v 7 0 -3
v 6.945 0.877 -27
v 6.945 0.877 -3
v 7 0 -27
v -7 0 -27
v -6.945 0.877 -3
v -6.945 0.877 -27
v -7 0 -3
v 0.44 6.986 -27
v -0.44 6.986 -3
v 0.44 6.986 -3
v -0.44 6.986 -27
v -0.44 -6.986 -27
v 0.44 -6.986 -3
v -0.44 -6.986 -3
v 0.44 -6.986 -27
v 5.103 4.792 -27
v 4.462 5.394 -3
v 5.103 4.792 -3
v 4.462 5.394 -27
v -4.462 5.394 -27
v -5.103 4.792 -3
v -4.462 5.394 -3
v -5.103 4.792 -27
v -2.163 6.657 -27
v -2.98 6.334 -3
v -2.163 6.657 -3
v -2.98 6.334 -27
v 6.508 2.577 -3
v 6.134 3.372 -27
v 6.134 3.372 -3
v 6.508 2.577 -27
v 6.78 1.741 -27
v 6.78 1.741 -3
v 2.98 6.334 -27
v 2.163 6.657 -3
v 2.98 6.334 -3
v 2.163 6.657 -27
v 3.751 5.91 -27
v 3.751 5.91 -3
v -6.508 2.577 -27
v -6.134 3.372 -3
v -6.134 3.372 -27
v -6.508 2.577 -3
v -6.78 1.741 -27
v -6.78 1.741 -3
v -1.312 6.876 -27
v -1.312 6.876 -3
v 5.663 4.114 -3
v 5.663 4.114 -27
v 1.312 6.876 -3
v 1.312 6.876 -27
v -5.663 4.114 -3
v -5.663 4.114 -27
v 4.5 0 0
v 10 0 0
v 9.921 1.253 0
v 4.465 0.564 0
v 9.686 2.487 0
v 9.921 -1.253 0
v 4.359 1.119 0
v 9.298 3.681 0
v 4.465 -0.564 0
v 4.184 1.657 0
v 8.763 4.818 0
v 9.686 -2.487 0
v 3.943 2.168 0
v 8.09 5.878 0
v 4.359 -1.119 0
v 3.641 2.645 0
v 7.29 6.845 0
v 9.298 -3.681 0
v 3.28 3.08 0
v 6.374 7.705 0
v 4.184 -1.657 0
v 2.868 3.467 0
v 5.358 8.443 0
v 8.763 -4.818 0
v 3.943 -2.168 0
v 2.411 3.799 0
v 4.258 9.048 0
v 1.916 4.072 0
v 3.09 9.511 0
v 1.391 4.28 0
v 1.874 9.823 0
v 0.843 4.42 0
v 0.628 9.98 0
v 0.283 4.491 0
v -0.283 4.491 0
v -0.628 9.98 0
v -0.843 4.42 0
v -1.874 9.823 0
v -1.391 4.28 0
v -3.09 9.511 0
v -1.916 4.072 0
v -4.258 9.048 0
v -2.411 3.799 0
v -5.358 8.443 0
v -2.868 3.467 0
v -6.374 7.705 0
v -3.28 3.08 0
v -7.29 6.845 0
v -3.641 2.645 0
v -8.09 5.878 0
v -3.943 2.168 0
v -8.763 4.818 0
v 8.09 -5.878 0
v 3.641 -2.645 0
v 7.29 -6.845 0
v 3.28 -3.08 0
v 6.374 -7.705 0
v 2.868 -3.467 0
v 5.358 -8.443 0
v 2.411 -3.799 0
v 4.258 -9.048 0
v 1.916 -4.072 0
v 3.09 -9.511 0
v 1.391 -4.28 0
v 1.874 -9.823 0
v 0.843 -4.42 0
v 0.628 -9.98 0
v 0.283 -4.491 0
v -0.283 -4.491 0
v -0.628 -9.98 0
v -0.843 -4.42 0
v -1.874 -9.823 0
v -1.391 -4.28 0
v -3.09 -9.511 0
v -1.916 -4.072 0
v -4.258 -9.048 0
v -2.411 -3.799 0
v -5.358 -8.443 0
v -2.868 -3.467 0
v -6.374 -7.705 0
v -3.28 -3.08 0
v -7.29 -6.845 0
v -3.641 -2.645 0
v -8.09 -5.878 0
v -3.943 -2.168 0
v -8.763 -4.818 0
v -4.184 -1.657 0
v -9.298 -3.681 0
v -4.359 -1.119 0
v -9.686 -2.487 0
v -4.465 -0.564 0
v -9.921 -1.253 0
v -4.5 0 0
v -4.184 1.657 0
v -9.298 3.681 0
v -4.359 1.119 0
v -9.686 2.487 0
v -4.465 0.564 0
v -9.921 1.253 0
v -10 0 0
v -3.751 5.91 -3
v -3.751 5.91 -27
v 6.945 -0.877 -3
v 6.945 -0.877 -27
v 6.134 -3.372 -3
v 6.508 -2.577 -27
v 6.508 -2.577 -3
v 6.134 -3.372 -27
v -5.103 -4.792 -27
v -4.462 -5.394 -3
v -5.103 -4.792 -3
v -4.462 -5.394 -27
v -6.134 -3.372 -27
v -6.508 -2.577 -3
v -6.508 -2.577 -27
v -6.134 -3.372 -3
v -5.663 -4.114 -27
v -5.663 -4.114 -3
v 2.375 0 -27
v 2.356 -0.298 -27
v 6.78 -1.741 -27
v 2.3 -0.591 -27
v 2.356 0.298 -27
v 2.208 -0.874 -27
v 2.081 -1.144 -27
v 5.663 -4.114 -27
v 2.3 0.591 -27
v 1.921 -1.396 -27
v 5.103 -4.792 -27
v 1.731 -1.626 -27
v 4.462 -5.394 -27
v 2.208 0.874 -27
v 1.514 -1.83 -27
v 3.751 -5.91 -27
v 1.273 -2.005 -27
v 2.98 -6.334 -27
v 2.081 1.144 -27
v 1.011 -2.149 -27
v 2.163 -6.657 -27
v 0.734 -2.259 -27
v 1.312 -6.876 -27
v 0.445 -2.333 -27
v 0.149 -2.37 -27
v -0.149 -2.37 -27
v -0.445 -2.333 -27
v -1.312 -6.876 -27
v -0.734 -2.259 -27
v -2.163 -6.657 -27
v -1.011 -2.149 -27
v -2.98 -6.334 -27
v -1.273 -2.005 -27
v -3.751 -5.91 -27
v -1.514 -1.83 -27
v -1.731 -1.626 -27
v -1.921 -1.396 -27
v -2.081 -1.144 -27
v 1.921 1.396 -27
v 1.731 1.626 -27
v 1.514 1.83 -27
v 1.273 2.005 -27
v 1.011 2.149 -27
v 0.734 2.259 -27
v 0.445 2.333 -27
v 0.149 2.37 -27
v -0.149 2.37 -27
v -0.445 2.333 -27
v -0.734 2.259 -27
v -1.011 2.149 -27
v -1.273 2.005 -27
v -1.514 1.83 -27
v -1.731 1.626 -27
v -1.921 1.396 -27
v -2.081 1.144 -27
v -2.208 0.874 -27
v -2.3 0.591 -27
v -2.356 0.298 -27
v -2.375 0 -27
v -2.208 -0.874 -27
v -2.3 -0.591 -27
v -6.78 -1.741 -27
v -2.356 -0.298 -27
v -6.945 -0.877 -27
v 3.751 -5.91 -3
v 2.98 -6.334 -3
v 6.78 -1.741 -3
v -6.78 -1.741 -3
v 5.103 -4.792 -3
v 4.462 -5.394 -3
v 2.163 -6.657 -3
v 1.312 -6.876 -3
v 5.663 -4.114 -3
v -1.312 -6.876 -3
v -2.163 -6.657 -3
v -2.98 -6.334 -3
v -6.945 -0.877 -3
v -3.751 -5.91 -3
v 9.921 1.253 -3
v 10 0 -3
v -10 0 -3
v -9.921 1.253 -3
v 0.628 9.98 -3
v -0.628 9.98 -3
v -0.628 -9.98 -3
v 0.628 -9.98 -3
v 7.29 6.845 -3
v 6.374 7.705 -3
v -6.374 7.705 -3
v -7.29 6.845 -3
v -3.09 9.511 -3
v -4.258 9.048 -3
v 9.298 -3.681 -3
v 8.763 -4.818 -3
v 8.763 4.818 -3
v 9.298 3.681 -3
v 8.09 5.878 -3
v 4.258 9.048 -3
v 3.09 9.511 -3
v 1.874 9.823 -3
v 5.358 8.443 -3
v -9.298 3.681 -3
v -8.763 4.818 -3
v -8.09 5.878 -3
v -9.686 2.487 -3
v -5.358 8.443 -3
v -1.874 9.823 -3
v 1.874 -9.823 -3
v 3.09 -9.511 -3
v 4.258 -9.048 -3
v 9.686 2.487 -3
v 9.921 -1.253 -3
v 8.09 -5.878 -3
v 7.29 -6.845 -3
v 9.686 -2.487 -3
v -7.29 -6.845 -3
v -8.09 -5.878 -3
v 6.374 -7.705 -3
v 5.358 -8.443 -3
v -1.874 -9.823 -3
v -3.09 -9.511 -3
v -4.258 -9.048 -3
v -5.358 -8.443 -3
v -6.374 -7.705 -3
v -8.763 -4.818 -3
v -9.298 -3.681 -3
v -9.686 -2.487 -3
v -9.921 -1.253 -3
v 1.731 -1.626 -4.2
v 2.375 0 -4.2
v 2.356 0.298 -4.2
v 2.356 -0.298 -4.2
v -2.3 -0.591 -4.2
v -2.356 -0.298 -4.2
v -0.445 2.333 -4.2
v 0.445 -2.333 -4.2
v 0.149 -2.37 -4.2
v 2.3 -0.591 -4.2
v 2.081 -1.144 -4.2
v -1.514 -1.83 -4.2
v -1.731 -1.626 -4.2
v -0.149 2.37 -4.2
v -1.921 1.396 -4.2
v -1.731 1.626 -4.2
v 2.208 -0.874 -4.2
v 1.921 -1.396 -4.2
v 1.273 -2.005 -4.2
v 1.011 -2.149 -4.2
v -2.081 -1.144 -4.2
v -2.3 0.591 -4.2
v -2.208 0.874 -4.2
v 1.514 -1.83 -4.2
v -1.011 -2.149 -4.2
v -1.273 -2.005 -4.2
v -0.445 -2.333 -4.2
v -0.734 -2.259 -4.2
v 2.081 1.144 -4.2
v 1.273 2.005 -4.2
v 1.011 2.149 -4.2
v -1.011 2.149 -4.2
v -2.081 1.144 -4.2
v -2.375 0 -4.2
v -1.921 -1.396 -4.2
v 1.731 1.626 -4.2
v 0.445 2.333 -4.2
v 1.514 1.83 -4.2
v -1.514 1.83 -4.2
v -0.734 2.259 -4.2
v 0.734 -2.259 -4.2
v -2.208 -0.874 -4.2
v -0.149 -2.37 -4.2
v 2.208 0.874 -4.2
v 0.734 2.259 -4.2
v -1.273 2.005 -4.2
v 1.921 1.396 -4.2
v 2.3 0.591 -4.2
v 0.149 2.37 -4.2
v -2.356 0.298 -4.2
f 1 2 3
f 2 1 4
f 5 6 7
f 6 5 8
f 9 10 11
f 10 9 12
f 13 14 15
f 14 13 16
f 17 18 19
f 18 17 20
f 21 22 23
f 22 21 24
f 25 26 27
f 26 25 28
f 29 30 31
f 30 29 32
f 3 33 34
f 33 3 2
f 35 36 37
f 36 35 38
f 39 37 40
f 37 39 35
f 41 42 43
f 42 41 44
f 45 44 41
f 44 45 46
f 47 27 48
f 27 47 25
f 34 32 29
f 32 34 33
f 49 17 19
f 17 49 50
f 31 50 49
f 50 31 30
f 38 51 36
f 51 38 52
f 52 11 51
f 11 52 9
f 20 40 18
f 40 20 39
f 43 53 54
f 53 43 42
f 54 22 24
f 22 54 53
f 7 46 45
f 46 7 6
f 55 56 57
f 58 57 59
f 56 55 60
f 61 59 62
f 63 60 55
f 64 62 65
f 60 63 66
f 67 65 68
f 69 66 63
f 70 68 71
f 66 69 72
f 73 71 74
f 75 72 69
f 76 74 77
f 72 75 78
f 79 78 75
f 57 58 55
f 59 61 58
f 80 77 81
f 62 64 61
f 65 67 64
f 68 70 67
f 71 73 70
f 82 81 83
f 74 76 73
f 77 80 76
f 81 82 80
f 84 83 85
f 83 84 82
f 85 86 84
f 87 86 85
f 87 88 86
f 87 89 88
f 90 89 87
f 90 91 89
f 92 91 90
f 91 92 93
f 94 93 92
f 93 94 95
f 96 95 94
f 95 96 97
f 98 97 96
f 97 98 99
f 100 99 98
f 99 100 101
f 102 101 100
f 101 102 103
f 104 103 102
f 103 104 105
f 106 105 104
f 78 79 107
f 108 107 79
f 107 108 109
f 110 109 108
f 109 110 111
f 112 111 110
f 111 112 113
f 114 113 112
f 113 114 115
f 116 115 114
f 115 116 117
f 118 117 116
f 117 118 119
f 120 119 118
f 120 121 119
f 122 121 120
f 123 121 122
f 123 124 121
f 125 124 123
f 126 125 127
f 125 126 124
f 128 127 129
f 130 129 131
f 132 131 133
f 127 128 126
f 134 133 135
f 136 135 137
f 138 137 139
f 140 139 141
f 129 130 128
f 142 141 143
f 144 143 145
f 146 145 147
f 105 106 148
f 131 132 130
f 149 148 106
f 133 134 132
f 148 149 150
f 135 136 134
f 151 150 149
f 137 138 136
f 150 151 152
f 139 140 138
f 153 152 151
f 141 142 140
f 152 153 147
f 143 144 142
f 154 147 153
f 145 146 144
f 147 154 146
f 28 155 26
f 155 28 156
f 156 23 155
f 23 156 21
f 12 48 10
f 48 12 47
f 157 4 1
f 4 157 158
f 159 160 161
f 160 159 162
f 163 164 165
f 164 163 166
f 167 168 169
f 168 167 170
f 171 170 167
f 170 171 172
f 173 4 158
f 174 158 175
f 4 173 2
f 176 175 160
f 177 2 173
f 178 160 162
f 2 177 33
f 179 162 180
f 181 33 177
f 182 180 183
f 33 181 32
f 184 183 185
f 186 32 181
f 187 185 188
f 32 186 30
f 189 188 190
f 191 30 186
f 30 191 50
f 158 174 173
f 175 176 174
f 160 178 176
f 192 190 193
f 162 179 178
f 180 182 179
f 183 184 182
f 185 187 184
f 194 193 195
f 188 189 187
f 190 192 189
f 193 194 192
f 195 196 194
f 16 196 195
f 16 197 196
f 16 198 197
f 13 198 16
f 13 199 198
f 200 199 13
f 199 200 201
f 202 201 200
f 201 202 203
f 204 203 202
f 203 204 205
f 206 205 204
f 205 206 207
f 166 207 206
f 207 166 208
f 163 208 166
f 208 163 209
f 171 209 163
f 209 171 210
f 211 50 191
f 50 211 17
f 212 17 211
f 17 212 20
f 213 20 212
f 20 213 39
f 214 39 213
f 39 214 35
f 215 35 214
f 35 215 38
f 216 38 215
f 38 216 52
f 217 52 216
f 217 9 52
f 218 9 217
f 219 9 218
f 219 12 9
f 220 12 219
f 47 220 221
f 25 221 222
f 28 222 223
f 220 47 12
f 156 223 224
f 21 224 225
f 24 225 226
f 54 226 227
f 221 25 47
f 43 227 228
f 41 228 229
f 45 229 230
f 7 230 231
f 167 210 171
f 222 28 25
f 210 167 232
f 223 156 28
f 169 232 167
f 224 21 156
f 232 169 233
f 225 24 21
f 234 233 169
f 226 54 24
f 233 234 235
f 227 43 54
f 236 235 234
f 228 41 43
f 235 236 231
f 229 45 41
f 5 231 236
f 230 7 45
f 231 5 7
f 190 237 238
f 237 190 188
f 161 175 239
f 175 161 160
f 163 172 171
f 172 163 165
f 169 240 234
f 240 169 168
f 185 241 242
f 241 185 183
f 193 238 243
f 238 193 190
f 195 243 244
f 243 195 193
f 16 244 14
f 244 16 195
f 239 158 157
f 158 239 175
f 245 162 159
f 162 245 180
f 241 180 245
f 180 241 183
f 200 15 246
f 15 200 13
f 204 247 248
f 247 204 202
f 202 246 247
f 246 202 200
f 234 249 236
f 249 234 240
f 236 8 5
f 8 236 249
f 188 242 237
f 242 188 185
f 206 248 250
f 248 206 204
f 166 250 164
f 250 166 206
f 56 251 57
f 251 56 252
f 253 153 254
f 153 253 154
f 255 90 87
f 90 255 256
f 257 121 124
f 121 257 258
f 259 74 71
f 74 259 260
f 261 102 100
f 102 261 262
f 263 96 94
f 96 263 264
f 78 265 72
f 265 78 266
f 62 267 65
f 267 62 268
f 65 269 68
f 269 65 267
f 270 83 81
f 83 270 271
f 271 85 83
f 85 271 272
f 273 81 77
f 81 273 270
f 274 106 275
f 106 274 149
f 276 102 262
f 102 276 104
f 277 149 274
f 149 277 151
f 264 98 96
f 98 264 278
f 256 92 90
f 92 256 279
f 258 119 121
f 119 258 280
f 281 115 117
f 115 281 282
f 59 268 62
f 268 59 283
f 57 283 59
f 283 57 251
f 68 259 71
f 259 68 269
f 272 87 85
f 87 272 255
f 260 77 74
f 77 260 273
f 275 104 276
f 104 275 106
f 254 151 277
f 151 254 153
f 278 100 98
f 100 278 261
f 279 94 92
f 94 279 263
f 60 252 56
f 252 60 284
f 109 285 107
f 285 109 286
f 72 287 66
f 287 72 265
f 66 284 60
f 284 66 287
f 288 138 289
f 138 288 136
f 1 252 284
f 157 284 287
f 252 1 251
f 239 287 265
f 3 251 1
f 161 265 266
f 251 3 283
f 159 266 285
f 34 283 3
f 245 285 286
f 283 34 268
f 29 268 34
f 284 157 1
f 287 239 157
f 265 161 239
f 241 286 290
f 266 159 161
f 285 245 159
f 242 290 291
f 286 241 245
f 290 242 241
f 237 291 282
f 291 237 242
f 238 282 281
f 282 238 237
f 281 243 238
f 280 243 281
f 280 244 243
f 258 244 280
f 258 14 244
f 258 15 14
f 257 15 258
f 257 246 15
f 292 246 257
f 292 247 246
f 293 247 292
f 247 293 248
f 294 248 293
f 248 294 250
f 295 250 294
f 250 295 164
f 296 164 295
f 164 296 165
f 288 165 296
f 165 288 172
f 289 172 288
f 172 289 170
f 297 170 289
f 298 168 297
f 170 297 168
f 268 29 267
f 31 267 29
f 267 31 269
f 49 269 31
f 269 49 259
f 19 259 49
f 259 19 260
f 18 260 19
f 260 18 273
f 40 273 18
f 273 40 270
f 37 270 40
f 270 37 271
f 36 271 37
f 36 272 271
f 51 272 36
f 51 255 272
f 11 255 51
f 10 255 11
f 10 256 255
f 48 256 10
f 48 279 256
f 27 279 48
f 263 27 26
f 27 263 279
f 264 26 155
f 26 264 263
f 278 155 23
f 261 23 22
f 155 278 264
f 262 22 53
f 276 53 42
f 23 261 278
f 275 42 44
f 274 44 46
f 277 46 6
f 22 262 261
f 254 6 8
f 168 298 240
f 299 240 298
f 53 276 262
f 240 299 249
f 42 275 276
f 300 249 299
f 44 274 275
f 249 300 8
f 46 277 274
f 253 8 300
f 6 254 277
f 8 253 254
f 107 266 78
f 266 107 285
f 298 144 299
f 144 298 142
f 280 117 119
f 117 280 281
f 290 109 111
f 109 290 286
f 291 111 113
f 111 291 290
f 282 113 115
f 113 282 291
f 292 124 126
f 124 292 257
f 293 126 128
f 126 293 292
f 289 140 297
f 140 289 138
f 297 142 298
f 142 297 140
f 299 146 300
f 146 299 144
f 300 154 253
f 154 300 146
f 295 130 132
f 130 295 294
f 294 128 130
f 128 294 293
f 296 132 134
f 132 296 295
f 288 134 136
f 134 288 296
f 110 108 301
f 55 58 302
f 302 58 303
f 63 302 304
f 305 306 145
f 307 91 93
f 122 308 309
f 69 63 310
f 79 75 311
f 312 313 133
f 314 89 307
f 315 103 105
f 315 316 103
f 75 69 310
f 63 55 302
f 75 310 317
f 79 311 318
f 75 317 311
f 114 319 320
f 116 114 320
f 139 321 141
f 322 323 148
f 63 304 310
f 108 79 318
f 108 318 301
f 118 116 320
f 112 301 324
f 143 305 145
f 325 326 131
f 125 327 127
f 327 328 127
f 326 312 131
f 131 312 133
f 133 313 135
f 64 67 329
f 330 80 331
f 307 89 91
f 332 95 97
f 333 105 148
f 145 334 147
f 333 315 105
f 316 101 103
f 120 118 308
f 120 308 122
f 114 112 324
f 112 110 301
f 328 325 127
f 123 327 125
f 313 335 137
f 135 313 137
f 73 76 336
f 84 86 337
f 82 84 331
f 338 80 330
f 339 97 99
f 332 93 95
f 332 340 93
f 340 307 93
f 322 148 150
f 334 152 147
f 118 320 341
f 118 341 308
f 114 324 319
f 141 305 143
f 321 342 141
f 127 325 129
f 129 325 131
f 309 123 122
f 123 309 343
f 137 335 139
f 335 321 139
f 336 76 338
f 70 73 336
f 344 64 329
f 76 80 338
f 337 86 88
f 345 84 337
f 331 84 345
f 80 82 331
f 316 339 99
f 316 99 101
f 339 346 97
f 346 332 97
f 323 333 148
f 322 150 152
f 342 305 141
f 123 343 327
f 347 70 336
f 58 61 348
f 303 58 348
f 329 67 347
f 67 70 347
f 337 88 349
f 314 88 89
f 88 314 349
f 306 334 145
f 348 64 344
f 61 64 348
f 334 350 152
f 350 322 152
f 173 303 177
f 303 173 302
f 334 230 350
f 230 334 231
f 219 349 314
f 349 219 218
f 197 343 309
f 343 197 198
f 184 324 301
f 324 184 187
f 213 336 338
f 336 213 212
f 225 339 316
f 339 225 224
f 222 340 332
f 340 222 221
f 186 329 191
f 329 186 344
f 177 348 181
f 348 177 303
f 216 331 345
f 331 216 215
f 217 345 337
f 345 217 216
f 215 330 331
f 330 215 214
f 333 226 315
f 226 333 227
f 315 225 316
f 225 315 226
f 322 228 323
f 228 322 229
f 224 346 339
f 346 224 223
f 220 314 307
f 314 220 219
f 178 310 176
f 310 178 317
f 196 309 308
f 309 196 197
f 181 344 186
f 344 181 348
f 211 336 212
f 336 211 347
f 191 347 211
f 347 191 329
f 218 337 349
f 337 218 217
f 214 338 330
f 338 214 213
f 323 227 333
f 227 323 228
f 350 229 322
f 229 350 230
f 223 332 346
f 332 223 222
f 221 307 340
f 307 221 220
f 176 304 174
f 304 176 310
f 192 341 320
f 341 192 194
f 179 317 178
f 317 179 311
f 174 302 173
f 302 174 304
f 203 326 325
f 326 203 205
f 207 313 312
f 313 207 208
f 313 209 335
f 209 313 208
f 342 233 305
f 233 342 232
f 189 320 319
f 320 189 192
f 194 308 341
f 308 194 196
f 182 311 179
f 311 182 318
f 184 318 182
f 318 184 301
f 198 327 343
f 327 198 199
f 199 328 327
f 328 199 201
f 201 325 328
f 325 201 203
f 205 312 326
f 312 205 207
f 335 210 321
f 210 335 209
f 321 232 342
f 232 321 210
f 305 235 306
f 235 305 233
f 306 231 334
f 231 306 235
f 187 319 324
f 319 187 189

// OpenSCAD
$fn = 50;


difference() {
	union() {
		translate(v = [0, 0, -27.0000000000]) {
			cylinder(h = 27, r = 7.0000000000);
		}
		translate(v = [0, 0, -3.0000000000]) {
			cylinder(h = 3, r = 10.0000000000);
		}
	}
	union() {
		translate(v = [0, 0, 0]) {
			rotate(a = [0, 0, 0]) {
				difference() {
					union() {
						#translate(v = [0, 0, -27.0000000000]) {
							cylinder(h = 27, r = 2.2500000000);
						}
						#translate(v = [0, 0, -4.2000000000]) {
							cylinder(h = 4.2000000000, r1 = 2.3750000000, r2 = 4.5000000000);
						}
						#translate(v = [0, 0, -27.0000000000]) {
							cylinder(h = 27, r = 2.3750000000);
						}
						#translate(v = [0, 0, -27.0000000000]) {
							cylinder(h = 27, r = 2.2500000000);
						}
					}
					union();
				}
			}
		}
	}
}
